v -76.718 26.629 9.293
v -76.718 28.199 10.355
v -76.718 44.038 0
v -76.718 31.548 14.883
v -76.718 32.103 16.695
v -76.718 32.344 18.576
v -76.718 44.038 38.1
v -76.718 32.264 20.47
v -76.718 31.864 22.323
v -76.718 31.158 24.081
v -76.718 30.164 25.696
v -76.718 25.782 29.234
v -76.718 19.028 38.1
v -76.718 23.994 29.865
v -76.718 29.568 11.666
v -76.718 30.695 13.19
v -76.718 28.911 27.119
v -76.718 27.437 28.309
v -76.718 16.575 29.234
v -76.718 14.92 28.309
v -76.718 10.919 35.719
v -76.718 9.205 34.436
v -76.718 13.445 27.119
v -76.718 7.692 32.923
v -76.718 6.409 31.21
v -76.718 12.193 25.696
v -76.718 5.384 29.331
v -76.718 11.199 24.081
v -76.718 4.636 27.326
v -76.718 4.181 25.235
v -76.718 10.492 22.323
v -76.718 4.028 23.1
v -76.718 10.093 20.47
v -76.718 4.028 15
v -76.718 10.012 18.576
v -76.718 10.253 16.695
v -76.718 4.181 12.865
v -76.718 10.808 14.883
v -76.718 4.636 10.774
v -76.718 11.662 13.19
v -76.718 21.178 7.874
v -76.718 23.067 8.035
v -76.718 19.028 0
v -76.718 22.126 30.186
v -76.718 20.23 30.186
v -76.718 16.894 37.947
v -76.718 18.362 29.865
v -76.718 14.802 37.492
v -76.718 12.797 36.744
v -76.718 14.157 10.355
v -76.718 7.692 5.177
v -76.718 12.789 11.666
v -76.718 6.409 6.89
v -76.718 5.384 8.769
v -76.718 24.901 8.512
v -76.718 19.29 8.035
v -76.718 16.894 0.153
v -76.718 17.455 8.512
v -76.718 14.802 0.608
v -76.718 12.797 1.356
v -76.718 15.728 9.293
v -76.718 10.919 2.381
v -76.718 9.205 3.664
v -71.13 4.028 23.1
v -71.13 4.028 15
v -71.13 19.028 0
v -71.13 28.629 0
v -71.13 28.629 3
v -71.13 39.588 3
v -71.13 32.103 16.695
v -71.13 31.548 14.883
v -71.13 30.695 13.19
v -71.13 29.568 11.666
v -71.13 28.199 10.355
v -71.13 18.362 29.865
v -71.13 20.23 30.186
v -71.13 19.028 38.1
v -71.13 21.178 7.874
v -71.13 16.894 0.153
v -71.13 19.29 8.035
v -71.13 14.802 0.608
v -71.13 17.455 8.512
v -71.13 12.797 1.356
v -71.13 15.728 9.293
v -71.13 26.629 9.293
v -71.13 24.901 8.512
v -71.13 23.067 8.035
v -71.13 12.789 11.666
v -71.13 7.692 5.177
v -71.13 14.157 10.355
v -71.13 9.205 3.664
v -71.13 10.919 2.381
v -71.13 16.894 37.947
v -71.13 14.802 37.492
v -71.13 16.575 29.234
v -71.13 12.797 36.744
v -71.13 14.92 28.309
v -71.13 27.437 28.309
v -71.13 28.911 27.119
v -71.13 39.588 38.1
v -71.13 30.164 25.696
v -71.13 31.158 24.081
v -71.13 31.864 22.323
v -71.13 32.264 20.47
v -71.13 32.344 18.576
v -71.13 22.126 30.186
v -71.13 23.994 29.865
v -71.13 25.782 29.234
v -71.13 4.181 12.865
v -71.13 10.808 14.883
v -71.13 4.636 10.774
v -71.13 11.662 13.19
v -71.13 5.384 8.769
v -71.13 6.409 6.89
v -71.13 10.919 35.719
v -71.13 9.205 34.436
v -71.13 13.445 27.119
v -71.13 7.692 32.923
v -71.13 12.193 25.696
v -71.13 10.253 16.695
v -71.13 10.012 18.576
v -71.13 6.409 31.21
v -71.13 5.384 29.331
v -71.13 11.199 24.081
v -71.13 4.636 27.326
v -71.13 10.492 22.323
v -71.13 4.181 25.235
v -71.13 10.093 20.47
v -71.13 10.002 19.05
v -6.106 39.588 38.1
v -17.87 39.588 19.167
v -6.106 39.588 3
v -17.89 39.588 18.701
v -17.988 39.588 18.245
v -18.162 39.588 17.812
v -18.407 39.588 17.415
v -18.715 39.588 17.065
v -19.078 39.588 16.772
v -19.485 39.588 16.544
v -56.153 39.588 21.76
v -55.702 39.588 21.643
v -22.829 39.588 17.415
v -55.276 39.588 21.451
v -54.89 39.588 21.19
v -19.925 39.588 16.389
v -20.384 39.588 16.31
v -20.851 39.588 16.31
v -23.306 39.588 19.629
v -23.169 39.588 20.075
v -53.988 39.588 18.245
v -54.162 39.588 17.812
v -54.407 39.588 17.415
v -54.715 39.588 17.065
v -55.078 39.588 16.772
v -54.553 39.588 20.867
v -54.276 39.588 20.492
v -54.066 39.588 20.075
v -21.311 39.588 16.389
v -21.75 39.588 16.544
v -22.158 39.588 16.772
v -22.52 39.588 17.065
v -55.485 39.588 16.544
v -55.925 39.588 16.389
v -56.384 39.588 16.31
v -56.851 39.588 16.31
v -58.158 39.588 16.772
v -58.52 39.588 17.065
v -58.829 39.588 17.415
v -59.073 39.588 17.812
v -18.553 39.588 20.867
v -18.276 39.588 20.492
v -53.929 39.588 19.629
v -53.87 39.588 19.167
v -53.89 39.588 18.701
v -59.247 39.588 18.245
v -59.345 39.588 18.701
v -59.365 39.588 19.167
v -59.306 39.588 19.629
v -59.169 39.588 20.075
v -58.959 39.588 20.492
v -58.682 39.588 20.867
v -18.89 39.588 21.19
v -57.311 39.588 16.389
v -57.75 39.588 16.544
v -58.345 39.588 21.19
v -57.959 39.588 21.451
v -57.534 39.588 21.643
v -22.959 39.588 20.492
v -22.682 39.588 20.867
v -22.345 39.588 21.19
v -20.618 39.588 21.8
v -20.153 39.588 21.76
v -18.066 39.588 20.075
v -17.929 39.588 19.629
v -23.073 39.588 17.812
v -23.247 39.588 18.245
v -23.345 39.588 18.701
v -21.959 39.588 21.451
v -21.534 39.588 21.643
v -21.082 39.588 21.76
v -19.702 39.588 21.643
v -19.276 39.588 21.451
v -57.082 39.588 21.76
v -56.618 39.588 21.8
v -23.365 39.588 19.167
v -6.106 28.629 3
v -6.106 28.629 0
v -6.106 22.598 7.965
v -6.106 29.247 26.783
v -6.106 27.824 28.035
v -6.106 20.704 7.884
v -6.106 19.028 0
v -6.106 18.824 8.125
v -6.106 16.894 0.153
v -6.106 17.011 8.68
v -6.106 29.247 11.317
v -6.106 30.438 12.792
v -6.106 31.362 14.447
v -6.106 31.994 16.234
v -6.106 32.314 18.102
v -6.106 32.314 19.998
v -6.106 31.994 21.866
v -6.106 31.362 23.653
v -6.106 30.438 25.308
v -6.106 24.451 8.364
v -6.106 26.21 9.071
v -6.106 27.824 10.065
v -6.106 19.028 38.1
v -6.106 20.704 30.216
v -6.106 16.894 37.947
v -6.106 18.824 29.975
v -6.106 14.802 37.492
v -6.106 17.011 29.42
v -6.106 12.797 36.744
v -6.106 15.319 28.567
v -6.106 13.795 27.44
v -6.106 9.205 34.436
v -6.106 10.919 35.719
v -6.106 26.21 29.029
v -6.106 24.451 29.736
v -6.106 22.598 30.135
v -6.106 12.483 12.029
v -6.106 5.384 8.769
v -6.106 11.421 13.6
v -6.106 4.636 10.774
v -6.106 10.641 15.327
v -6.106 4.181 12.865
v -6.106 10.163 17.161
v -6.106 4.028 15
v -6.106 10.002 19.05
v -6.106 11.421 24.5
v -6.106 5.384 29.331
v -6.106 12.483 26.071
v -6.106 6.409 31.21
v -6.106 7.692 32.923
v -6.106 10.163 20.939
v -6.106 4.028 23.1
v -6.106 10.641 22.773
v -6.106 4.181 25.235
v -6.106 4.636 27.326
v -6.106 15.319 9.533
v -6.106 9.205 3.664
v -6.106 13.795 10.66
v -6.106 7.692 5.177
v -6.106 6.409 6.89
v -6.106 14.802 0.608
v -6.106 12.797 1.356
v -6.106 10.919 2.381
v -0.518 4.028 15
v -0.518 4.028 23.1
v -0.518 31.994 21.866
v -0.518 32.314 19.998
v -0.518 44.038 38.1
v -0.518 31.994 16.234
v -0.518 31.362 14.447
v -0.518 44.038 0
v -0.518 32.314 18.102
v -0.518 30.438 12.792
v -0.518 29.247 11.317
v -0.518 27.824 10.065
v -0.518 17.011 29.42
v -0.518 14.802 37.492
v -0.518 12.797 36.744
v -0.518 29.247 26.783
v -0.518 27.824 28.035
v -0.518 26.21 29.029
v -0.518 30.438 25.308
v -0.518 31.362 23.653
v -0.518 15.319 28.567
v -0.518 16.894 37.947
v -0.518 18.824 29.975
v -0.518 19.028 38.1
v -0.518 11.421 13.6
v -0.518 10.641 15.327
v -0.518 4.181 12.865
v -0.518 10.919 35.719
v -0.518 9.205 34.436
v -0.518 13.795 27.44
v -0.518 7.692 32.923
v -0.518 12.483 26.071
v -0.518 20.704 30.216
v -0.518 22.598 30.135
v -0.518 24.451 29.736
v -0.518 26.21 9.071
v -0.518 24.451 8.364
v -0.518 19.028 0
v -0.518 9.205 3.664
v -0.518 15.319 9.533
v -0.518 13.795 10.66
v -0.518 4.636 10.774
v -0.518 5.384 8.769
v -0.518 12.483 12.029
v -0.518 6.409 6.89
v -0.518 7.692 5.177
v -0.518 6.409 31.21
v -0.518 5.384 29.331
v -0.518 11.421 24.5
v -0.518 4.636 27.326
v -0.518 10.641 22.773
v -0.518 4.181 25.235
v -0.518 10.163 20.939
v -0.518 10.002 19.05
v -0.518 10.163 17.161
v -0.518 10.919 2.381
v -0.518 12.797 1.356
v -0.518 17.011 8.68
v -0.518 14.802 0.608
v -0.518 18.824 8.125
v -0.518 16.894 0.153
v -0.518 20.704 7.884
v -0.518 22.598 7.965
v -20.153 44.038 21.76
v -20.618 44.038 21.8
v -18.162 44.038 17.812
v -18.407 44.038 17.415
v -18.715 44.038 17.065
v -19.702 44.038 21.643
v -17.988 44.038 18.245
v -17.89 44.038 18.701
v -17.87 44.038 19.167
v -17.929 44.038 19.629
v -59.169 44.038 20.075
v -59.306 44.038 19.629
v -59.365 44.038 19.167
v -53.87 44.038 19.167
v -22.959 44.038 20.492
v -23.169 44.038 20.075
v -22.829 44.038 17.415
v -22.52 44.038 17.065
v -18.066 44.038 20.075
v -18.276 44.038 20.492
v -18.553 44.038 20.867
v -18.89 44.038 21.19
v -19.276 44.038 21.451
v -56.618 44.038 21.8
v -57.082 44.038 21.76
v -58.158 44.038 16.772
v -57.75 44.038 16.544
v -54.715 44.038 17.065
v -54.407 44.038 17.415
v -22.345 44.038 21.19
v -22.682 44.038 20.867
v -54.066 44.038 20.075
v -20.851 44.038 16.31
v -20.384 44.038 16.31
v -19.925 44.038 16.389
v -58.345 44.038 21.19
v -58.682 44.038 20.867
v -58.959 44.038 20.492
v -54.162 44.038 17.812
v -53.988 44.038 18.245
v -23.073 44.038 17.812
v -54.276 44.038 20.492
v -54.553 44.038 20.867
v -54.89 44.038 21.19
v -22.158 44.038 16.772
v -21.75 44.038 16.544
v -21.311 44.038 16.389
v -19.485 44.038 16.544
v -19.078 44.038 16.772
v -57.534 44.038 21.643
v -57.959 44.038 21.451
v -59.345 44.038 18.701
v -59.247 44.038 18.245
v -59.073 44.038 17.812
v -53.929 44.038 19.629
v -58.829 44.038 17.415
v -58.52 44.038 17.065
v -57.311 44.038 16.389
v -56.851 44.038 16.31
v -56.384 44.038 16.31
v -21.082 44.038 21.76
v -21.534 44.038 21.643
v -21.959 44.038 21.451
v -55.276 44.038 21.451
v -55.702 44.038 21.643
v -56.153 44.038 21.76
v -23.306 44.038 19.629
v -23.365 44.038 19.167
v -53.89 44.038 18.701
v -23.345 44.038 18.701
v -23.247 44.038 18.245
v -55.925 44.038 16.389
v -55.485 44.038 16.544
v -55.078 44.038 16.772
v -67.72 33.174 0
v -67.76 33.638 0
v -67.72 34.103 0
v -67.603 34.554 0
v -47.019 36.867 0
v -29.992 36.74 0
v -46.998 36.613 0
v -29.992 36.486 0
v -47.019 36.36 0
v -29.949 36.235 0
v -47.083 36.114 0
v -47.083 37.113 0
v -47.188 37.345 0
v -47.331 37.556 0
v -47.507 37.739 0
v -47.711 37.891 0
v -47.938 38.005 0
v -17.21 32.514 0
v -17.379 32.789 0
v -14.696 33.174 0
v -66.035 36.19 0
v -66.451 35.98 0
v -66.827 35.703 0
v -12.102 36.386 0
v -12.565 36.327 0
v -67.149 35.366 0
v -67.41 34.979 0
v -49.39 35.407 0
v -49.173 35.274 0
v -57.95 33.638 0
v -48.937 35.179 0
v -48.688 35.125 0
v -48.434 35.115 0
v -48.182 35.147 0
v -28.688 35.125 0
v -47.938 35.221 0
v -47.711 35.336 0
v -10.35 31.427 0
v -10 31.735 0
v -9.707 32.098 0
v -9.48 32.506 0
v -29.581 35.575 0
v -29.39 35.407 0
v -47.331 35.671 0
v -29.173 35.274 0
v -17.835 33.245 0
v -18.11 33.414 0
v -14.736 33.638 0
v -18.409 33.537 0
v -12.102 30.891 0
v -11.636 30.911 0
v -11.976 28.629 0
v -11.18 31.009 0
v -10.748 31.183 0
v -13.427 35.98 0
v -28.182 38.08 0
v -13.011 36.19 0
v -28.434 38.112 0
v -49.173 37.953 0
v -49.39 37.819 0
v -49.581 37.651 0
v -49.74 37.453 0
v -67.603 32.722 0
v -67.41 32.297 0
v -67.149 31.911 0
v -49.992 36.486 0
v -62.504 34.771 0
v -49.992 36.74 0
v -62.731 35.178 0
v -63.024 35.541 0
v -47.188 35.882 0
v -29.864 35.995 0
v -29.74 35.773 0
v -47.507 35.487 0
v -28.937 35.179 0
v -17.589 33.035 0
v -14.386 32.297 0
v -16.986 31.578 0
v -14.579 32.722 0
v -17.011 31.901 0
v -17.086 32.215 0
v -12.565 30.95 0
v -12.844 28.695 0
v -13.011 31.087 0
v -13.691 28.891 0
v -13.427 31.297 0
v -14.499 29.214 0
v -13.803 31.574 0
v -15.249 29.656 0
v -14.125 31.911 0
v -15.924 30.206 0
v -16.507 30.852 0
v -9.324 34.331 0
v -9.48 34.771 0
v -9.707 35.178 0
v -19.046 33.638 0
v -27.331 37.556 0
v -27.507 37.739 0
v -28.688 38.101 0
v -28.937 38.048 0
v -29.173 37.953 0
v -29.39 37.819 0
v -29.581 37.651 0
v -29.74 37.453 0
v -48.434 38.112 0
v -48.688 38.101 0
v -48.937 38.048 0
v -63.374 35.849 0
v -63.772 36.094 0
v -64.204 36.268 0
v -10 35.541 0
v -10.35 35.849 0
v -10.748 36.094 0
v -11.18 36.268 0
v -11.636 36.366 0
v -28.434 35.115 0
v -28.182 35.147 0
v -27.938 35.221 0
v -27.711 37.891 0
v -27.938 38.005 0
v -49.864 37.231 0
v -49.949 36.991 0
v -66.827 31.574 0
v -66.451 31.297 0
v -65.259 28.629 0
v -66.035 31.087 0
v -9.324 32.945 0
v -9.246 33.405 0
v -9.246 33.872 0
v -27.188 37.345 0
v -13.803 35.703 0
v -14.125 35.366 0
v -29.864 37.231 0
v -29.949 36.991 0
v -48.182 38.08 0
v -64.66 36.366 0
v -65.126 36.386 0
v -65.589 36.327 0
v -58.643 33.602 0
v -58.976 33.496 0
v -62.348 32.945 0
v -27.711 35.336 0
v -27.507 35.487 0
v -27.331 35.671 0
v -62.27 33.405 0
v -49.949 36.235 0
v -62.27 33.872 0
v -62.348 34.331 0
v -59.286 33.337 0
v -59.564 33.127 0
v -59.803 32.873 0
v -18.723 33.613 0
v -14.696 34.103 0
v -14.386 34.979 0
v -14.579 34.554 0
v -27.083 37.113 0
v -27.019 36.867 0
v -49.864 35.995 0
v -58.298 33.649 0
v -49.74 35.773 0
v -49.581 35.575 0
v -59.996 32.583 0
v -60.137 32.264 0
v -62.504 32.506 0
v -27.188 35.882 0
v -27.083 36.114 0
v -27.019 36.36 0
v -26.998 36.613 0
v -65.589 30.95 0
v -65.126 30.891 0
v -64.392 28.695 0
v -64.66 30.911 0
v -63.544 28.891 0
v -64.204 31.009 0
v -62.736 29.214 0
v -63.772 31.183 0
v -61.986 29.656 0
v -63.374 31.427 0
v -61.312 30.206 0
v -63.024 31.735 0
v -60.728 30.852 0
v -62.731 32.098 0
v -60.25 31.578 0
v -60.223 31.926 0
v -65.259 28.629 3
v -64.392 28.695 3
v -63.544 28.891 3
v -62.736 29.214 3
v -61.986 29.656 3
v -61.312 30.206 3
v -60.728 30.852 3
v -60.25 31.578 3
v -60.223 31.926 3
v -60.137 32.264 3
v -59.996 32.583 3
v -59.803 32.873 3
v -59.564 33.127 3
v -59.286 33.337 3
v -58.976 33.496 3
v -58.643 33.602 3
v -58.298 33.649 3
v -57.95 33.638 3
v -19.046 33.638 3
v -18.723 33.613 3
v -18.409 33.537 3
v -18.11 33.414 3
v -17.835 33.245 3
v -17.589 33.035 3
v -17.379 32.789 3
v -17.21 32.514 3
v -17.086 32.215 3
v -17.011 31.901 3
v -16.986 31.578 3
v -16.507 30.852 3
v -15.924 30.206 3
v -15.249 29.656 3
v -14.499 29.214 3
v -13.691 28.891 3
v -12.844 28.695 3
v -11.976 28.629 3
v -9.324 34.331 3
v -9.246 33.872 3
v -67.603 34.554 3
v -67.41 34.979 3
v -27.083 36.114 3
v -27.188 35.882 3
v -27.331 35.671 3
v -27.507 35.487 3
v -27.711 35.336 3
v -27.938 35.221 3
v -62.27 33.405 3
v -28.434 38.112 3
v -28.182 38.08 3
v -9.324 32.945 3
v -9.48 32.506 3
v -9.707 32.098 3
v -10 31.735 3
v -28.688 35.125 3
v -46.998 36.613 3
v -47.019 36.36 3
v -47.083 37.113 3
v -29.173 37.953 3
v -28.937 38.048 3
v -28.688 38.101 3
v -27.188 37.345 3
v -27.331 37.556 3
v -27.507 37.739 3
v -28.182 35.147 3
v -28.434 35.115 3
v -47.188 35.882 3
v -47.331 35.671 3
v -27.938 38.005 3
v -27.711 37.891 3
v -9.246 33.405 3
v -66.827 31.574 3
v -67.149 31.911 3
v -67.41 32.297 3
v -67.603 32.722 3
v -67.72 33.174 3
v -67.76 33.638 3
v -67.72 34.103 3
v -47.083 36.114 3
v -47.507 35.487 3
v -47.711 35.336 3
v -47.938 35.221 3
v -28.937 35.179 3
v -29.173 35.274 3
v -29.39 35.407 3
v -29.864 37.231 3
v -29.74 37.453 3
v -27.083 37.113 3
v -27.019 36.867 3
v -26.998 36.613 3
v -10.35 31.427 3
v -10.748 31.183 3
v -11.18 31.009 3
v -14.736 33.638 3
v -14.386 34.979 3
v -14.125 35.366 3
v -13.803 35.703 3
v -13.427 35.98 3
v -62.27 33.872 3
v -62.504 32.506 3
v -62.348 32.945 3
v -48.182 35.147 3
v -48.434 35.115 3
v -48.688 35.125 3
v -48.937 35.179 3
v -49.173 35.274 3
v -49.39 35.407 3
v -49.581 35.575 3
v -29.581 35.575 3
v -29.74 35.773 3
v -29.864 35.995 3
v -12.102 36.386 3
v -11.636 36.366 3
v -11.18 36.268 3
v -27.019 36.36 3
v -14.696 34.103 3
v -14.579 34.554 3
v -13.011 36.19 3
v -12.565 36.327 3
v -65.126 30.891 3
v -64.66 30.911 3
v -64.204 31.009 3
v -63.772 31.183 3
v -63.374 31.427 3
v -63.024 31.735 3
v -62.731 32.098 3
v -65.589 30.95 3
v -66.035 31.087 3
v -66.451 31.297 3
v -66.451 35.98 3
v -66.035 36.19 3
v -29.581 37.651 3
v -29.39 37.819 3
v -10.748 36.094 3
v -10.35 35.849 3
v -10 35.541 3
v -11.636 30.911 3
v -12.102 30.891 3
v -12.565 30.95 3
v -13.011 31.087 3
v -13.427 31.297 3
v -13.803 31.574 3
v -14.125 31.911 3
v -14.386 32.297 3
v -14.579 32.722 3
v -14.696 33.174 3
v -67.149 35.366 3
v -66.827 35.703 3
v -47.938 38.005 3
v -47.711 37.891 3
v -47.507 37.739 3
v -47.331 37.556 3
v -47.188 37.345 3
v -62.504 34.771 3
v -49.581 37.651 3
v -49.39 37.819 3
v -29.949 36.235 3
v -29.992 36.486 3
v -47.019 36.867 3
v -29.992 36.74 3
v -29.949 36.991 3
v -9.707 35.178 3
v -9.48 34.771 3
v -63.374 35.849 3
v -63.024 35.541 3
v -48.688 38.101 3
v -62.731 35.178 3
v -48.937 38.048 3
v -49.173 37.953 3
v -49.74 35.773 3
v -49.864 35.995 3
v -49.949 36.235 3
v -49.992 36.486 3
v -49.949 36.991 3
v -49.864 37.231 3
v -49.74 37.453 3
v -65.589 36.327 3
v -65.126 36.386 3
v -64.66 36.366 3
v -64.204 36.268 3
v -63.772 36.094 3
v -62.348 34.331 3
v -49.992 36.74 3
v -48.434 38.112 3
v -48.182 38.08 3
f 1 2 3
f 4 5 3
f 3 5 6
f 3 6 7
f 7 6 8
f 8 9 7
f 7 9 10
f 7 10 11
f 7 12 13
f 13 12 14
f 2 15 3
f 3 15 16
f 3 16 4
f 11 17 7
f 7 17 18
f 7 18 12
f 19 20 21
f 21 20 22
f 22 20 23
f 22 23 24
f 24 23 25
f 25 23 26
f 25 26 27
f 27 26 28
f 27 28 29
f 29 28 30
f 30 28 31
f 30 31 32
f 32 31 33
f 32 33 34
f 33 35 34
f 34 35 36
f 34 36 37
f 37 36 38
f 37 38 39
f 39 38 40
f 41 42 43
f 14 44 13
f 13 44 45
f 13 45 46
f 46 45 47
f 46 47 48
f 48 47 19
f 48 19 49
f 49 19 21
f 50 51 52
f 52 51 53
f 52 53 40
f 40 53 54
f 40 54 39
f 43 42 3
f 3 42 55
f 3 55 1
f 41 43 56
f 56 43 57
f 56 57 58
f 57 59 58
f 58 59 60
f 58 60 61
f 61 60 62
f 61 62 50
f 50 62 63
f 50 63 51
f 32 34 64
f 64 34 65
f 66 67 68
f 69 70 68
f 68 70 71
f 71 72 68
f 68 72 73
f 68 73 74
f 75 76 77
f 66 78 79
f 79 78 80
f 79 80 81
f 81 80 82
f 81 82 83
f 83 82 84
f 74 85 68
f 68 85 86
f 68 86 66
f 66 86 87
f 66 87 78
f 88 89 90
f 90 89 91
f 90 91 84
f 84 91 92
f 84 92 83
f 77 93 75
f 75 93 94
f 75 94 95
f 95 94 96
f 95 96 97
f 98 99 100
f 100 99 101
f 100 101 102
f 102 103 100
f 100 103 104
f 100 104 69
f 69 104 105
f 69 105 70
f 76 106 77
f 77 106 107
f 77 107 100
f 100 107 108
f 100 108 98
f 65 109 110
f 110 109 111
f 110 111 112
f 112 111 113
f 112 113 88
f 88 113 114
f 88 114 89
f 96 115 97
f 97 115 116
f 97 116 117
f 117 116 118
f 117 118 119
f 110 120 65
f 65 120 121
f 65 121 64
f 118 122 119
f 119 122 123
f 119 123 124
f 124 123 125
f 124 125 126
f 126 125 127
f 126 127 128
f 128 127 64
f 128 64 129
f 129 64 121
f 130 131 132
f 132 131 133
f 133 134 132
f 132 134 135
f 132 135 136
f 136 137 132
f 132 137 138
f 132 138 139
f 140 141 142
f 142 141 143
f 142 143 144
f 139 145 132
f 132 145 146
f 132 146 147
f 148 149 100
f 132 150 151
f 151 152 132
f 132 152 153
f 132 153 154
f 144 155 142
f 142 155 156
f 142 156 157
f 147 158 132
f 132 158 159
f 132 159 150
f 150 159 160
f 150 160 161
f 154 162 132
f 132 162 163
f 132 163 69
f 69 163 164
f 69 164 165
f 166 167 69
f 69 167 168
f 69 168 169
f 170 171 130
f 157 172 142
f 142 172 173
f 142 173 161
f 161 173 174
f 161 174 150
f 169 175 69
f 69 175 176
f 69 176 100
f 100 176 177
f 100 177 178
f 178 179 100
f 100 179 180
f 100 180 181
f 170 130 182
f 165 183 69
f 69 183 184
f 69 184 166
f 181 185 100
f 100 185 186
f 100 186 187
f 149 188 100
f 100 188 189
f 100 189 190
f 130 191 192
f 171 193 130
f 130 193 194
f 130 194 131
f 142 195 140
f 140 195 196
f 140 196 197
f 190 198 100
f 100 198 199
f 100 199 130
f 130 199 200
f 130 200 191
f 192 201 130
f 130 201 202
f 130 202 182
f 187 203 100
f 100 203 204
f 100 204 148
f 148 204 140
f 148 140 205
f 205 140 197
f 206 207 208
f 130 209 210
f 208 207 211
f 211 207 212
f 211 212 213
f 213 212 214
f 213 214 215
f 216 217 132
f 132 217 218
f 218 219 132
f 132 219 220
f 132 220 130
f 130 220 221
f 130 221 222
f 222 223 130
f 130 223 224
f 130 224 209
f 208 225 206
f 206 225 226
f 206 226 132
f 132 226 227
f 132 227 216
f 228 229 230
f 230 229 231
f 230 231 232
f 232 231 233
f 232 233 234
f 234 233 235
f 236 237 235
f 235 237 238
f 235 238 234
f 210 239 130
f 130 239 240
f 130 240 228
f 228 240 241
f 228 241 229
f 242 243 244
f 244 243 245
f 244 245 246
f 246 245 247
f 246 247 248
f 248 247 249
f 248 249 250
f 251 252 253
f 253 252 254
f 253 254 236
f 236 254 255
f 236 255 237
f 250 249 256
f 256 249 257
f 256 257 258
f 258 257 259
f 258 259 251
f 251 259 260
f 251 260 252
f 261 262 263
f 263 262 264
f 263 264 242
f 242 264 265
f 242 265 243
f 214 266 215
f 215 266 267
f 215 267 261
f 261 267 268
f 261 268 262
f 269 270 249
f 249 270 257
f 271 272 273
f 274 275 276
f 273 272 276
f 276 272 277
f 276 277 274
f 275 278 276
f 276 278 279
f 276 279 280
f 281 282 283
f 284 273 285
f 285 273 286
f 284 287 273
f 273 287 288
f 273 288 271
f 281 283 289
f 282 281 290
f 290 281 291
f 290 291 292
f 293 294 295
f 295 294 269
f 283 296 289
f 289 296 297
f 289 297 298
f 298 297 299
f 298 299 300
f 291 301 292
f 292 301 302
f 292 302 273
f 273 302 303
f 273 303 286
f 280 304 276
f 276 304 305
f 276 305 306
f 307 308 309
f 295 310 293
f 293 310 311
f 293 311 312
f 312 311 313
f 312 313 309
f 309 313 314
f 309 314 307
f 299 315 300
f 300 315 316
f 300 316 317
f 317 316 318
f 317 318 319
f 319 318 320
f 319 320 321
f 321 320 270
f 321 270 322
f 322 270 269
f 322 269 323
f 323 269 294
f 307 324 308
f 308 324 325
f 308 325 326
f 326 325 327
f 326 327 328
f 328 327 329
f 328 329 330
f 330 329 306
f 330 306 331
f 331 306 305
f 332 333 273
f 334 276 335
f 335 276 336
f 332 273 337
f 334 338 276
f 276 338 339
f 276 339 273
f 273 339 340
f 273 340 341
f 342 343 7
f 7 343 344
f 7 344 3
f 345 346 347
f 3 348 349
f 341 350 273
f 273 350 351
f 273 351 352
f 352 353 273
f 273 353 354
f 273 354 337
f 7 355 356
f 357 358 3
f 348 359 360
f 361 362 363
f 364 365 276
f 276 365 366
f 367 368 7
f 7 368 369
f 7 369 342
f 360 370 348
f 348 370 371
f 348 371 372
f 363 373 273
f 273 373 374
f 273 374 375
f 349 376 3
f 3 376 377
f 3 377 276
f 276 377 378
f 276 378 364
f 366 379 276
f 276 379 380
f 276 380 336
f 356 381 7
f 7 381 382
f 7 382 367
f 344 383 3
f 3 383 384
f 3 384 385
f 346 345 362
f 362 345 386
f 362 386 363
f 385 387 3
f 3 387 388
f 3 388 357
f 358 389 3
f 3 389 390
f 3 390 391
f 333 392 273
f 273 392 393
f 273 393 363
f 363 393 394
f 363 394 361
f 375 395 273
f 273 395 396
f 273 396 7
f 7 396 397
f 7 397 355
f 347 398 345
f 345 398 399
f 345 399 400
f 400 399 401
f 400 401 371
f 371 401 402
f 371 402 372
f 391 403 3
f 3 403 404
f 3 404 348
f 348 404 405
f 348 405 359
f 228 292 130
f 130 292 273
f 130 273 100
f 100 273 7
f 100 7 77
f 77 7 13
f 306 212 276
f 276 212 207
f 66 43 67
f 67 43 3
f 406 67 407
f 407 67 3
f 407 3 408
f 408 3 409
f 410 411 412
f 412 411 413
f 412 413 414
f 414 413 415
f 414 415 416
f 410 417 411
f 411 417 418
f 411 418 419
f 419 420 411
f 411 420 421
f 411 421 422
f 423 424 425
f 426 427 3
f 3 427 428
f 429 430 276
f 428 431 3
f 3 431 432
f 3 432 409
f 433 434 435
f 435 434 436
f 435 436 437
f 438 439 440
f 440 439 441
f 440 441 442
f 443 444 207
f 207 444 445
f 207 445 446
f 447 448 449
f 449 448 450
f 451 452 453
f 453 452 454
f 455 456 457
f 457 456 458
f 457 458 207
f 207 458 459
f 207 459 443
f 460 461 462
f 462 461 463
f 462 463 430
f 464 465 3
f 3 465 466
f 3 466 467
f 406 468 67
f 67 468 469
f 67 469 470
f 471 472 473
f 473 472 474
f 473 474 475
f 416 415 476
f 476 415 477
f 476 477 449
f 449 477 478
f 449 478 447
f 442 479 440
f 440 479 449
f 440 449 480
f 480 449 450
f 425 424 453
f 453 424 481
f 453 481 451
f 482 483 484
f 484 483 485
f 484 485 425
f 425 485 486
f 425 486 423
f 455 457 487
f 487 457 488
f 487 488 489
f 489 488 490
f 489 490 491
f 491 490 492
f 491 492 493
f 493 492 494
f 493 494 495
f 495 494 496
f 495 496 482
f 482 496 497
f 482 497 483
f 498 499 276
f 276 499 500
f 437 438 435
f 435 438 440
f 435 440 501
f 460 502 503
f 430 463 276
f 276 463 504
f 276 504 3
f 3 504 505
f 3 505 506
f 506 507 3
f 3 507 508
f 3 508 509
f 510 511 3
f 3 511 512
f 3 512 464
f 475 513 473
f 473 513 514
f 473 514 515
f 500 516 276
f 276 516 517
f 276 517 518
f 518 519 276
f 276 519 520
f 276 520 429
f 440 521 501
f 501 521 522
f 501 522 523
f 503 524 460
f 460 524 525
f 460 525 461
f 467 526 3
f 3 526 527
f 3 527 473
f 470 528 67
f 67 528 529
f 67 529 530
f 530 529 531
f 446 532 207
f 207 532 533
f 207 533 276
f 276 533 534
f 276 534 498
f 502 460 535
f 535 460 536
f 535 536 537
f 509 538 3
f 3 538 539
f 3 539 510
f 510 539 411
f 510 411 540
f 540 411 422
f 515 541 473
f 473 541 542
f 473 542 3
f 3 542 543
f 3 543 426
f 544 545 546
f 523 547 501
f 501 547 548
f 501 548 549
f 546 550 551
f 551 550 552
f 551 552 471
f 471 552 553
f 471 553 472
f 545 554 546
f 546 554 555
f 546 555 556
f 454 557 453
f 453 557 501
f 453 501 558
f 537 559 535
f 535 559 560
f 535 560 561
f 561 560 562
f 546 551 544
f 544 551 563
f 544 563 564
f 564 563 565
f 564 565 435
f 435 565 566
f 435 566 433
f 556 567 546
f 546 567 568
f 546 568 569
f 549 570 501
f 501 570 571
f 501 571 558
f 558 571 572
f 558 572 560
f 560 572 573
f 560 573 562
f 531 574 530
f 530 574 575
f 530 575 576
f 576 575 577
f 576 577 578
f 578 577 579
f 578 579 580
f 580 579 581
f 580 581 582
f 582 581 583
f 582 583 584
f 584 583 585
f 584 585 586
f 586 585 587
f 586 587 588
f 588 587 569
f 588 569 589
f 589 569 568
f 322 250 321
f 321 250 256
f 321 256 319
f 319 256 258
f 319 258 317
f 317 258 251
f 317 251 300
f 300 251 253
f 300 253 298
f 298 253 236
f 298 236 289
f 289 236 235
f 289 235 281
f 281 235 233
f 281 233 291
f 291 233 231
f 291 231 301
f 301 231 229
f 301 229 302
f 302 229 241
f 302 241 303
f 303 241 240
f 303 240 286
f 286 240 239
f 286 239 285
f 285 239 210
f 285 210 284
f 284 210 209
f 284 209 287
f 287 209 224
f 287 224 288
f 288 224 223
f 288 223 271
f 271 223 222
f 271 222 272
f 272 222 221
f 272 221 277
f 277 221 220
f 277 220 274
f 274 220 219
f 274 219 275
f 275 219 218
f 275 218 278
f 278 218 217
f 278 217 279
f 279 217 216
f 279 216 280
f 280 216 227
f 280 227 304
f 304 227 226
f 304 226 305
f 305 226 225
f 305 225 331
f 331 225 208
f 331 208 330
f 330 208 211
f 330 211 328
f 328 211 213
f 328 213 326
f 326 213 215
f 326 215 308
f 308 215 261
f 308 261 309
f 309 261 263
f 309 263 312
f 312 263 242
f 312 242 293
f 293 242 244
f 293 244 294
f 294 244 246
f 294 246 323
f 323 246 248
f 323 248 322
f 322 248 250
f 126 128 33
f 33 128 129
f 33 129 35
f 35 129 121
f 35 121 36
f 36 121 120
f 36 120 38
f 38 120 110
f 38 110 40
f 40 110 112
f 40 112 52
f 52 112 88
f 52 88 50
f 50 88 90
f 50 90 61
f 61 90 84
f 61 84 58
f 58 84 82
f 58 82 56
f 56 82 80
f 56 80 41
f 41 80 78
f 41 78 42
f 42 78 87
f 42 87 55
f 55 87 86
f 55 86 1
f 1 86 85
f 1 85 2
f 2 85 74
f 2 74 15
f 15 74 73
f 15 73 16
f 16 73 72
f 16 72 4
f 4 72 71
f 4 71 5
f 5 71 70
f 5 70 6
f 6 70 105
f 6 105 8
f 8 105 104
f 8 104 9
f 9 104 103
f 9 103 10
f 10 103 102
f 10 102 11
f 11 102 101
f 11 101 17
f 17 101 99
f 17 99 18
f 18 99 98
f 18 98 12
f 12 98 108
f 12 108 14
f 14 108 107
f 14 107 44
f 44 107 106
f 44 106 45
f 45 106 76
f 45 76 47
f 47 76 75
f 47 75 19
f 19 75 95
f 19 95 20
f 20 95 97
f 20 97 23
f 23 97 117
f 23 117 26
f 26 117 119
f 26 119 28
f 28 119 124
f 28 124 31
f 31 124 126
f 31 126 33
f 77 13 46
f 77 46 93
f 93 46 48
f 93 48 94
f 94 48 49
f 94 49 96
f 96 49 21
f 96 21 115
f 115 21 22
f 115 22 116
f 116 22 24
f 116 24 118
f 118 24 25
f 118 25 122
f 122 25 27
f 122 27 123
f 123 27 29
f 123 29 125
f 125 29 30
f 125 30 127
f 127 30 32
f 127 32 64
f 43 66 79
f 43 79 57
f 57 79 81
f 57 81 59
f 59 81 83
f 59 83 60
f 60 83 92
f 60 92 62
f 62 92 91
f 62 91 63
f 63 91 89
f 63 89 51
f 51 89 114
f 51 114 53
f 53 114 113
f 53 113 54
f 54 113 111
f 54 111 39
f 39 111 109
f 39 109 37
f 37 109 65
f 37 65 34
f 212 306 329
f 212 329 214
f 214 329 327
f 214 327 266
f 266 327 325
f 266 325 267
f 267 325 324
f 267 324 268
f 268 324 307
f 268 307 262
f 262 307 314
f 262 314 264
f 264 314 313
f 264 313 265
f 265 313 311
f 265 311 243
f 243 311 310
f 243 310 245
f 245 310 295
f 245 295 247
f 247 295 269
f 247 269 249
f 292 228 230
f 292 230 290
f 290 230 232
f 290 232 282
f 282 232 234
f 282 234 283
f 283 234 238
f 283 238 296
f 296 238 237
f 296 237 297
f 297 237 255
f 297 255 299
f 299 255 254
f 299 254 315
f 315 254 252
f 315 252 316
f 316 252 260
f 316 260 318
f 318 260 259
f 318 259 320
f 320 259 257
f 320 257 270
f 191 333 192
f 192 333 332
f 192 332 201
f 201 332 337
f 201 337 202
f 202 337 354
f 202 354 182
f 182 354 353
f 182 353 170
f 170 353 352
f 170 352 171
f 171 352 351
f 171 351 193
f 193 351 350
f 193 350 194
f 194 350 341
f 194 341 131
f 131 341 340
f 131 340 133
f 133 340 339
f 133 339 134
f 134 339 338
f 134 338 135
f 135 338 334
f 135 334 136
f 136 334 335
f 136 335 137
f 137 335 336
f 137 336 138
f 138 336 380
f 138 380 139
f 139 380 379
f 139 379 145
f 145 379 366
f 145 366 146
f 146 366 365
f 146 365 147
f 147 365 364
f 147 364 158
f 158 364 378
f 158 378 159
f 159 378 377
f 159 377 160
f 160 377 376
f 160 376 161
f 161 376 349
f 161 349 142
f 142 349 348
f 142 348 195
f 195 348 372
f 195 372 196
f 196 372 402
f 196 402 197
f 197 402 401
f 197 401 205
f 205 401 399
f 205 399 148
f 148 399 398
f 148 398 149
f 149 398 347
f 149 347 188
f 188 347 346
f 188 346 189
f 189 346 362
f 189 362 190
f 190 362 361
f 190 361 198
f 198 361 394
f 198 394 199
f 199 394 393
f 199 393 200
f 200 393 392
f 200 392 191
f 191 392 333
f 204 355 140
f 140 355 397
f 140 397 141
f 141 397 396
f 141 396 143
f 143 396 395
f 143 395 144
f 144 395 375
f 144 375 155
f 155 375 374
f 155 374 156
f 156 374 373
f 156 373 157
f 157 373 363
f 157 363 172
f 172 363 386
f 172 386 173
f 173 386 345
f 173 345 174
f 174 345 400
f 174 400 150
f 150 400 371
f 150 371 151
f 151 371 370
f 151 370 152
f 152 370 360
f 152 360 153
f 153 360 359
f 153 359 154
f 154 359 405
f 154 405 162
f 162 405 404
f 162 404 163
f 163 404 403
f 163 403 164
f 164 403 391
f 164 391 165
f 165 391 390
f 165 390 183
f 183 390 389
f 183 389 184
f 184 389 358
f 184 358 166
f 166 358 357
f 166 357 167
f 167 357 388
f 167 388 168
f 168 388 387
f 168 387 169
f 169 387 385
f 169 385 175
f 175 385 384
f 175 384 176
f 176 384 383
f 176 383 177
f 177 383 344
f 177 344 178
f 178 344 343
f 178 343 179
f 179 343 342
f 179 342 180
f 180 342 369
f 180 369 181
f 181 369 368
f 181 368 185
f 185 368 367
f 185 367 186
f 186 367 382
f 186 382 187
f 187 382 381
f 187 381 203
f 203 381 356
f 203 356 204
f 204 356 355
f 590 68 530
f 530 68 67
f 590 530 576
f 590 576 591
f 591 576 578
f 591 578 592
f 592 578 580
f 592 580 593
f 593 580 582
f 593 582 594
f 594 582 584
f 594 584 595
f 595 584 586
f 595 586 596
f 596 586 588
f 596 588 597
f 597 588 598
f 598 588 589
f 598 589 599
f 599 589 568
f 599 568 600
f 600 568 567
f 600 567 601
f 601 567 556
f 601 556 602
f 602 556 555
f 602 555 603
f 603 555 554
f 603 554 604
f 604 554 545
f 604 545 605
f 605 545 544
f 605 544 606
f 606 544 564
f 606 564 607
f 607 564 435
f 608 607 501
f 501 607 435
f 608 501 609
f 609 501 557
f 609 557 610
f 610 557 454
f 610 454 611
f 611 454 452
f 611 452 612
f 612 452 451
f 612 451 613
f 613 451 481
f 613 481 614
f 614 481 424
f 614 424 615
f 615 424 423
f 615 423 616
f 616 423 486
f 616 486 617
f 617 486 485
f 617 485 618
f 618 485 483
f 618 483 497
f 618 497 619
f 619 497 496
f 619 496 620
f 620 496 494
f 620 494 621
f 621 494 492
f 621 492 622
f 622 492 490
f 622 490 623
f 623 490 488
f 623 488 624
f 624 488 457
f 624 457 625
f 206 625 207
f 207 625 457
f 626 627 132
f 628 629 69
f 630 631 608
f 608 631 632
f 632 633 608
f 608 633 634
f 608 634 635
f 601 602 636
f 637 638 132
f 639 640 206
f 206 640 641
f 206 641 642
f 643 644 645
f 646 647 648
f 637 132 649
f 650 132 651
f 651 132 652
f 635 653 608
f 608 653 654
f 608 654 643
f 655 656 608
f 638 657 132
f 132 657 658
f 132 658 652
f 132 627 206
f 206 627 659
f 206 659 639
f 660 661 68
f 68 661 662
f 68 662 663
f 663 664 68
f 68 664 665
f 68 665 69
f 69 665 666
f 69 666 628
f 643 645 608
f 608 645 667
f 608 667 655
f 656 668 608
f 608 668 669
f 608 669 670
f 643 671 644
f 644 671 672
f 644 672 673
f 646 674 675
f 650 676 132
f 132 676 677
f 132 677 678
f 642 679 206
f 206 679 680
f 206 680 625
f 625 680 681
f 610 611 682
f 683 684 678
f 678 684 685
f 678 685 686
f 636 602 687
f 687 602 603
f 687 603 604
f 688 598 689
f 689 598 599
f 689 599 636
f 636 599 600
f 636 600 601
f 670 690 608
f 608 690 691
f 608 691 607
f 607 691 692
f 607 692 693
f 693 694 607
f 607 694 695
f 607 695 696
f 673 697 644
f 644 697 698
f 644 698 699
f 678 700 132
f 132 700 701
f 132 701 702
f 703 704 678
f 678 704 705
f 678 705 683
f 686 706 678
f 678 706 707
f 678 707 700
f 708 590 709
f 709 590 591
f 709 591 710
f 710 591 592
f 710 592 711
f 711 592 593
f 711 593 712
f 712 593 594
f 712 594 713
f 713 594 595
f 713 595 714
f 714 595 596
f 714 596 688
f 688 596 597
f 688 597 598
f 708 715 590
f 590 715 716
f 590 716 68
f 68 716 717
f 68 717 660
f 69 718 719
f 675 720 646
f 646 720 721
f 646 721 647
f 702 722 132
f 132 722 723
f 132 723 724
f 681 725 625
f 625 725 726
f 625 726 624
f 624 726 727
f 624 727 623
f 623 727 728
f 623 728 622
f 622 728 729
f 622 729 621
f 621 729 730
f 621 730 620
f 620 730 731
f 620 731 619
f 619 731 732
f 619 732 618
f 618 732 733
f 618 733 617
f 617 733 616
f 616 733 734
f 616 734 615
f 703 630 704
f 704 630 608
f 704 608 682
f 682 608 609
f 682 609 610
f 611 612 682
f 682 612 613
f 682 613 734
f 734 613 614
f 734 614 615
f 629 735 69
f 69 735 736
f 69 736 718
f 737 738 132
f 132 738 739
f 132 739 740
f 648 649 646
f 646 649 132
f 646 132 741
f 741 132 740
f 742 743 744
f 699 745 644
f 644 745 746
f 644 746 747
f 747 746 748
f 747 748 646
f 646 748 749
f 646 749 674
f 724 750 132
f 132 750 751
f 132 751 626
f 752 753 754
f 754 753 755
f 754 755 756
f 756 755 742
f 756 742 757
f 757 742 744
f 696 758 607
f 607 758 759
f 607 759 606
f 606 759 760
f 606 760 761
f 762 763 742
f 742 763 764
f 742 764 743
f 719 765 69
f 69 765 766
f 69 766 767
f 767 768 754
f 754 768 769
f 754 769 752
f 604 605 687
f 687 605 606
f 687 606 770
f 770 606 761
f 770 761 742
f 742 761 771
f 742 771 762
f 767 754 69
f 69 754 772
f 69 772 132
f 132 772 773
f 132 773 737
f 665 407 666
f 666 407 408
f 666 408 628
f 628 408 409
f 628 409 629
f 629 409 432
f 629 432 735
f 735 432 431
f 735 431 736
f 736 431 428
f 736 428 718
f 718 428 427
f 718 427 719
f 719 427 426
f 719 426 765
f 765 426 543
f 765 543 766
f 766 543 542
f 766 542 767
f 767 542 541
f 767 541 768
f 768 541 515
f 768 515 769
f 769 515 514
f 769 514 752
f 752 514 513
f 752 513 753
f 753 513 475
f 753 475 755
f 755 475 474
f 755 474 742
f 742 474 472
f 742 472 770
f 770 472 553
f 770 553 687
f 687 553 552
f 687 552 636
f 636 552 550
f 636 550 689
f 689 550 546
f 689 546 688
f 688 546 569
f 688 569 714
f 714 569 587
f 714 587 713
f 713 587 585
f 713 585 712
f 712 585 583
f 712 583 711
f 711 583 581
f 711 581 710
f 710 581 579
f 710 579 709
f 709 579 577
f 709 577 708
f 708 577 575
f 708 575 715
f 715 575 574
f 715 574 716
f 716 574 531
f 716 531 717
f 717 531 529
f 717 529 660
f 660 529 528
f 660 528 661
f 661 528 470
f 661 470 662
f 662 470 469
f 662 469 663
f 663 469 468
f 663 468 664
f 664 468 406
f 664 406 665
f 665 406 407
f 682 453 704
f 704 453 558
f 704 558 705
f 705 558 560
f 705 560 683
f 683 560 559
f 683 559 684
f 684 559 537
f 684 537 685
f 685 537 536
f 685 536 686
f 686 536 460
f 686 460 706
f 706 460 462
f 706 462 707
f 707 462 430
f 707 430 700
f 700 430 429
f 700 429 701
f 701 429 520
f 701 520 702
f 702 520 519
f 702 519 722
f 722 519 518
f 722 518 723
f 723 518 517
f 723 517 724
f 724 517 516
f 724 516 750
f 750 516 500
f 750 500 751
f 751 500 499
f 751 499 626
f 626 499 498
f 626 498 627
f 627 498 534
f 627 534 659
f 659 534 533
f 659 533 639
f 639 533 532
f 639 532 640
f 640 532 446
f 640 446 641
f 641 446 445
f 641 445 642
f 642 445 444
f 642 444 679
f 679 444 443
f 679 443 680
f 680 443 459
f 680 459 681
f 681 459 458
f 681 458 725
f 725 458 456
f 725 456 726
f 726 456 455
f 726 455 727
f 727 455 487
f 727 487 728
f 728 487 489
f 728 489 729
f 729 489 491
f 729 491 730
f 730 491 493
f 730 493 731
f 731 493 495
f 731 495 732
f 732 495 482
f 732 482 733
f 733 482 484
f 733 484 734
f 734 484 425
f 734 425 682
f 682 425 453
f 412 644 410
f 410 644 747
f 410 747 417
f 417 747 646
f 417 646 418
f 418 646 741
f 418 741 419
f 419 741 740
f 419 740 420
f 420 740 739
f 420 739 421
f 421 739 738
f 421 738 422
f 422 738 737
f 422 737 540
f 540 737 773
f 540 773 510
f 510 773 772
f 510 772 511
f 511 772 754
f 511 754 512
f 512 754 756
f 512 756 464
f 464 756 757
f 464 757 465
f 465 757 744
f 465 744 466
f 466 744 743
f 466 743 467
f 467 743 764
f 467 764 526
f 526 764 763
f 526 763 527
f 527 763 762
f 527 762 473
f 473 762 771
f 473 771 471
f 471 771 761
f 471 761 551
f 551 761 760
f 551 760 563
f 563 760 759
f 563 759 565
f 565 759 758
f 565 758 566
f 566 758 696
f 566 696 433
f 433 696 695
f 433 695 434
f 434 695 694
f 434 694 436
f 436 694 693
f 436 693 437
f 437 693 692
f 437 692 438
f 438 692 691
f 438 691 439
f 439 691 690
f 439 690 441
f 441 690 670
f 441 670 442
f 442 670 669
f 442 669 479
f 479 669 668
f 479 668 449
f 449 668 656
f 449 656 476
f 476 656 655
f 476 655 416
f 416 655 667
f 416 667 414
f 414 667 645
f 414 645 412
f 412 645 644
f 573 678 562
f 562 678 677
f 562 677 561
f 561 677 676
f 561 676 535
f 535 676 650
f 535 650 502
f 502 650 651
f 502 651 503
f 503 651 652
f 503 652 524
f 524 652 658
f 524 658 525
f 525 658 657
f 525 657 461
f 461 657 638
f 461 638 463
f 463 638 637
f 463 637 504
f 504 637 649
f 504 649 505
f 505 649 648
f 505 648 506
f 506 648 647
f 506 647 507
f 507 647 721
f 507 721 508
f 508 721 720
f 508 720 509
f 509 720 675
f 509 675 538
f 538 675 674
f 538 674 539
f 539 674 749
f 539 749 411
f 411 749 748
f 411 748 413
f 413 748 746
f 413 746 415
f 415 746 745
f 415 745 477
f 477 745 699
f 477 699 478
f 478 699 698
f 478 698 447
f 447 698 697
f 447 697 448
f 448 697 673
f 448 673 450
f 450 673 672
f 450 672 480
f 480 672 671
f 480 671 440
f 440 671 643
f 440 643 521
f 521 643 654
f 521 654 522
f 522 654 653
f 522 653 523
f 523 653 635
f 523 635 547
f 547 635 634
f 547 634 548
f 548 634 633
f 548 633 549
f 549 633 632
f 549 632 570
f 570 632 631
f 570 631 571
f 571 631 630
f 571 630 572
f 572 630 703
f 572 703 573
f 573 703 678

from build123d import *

# Parameters (mm, degrees)
BOSS_EXTRUDE1_DEPTH = 38.1
SKETCH5_R           = 11.176
CUT_EXTRUDE1_DEPTH  = 38.1
FILLET1_R           = 15
SKETCH6_R           = 1.51
CUT_EXTRUDE2_DEPTH  = 10
SKETCH11_R          = 2.75
CUT_EXTRUDE5_DEPTH  = 5
SKETCH12_R          = 2.75
BOSS_EXTRUDE2_DEPTH = 3
SKETCH13_R          = 1.5
CUT_EXTRUDE6_DEPTH  = 3


with BuildPart() as part:
    # Sketch1 → Boss-Extrude1 (new body)
    with BuildSketch(Plane.XY):
        Polygon((-76.717654375, 44.038289207), (-0.517654375, 44.038289207), (-0.517654375, 4.028289207), (-6.105654375, 4.028289207), (-6.105654375, 39.588289207), (-71.129654375, 39.588289207), (-71.129654375, 4.028289207), (-76.717654375, 4.028289207), align=None)
    extrude(amount=BOSS_EXTRUDE1_DEPTH)

    # Sketch5 → Cut-Extrude1 (cut)
    with BuildSketch(Plane.ZY.offset(6.105654375)):
        with Locations((19.05, 21.178289207)):
            Circle(SKETCH5_R)
    cut_extrude1 = extrude(amount=-CUT_EXTRUDE1_DEPTH, mode=Mode.SUBTRACT)

    # Mirror3: Cut-Extrude1 across plane
    add(cut_extrude1.mirror(Plane.ZY.offset(38.617654375)), mode=Mode.SUBTRACT)

    # Fillet1
    fillet1_edges = [part.edges().sort_by_distance(p)[0] for p in [
        (-73.923654375, 4.028289207, 0),
        (-3.311654375, 4.028289207, 38.1),
        (-73.923654375, 4.028289207, 38.1),
        (-3.311654375, 4.028289207, 0),
    ]]
    fillet(fillet1_edges, radius=FILLET1_R)

    # Sketch6 → Cut-Extrude2 (cut)
    with BuildSketch(Plane(origin=(0, 44.038289207, 0), x_dir=(1, 0, 0), z_dir=(0, 1, 0))):
        with Locations((-56.617654375, -19.05)):
            Circle(SKETCH6_R)
        with Locations((-20.617654375, -19.05)):
            Circle(SKETCH6_R)
    extrude(amount=-CUT_EXTRUDE2_DEPTH, mode=Mode.SUBTRACT)

    # Sketch11 → Cut-Extrude5 (cut)
    with BuildSketch(Plane(origin=(0, 44.038289207, 0), x_dir=(1, 0, 0), z_dir=(0, 1, 0))):
        with Locations((-56.617654375, -19.05)):
            Circle(SKETCH11_R)
        with Locations((-20.617654375, -19.05)):
            Circle(SKETCH11_R)
    extrude(amount=-CUT_EXTRUDE5_DEPTH, mode=Mode.SUBTRACT)

    # Sketch12 → Boss-Extrude2 (add)
    with BuildSketch(Plane(origin=(0, 0, 0), x_dir=(-1, 0, 0), z_dir=(0, 0, -1))):
        with BuildLine():
            Line((6.105654375, 39.588289207), (71.129654375, 39.588289207))
            Line((71.129654375, 39.588289207), (71.129654375, 28.628518045))
            Line((71.129654375, 28.628518045), (65.259425536, 28.628518045))
            ThreePointArc((65.259425536, 28.628518045), (62.352582017, 29.420734639), (60.249654375, 31.578289207))
            ThreePointArc((60.249654375, 31.578289207), (59.564079492, 33.126822105), (57.949654375, 33.638289207))
            Line((57.949654375, 33.638289207), (19.045654375, 33.638289207))
            ThreePointArc((19.045654375, 33.638289207), (17.589014406, 33.034929176), (16.985654375, 31.578289207))
            ThreePointArc((16.985654375, 31.578289207), (14.882724316, 29.420741304), (11.975883214, 28.628527574))
            Line((11.975883214, 28.628527574), (6.105654375, 28.628527574))
            Line((6.105654375, 28.628527574), (6.105654375, 39.588289207))
        make_face()
        with Locations((65.009654375, 33.638289207)):
            Circle(SKETCH12_R, mode=Mode.SUBTRACT)
        with Locations((11.985654375, 33.638289207)):
            Circle(SKETCH12_R, mode=Mode.SUBTRACT)
    extrude(amount=-BOSS_EXTRUDE2_DEPTH)

    # Sketch13 → Cut-Extrude6 (cut)
    with BuildSketch(Plane.XY.offset(3)):
        with Locations((-28.497654375, 36.613289207)):
            Circle(SKETCH13_R)
        with Locations((-48.497654375, 36.613289207)):
            Circle(SKETCH13_R)
    extrude(amount=-CUT_EXTRUDE6_DEPTH, mode=Mode.SUBTRACT)


solid = part.part
